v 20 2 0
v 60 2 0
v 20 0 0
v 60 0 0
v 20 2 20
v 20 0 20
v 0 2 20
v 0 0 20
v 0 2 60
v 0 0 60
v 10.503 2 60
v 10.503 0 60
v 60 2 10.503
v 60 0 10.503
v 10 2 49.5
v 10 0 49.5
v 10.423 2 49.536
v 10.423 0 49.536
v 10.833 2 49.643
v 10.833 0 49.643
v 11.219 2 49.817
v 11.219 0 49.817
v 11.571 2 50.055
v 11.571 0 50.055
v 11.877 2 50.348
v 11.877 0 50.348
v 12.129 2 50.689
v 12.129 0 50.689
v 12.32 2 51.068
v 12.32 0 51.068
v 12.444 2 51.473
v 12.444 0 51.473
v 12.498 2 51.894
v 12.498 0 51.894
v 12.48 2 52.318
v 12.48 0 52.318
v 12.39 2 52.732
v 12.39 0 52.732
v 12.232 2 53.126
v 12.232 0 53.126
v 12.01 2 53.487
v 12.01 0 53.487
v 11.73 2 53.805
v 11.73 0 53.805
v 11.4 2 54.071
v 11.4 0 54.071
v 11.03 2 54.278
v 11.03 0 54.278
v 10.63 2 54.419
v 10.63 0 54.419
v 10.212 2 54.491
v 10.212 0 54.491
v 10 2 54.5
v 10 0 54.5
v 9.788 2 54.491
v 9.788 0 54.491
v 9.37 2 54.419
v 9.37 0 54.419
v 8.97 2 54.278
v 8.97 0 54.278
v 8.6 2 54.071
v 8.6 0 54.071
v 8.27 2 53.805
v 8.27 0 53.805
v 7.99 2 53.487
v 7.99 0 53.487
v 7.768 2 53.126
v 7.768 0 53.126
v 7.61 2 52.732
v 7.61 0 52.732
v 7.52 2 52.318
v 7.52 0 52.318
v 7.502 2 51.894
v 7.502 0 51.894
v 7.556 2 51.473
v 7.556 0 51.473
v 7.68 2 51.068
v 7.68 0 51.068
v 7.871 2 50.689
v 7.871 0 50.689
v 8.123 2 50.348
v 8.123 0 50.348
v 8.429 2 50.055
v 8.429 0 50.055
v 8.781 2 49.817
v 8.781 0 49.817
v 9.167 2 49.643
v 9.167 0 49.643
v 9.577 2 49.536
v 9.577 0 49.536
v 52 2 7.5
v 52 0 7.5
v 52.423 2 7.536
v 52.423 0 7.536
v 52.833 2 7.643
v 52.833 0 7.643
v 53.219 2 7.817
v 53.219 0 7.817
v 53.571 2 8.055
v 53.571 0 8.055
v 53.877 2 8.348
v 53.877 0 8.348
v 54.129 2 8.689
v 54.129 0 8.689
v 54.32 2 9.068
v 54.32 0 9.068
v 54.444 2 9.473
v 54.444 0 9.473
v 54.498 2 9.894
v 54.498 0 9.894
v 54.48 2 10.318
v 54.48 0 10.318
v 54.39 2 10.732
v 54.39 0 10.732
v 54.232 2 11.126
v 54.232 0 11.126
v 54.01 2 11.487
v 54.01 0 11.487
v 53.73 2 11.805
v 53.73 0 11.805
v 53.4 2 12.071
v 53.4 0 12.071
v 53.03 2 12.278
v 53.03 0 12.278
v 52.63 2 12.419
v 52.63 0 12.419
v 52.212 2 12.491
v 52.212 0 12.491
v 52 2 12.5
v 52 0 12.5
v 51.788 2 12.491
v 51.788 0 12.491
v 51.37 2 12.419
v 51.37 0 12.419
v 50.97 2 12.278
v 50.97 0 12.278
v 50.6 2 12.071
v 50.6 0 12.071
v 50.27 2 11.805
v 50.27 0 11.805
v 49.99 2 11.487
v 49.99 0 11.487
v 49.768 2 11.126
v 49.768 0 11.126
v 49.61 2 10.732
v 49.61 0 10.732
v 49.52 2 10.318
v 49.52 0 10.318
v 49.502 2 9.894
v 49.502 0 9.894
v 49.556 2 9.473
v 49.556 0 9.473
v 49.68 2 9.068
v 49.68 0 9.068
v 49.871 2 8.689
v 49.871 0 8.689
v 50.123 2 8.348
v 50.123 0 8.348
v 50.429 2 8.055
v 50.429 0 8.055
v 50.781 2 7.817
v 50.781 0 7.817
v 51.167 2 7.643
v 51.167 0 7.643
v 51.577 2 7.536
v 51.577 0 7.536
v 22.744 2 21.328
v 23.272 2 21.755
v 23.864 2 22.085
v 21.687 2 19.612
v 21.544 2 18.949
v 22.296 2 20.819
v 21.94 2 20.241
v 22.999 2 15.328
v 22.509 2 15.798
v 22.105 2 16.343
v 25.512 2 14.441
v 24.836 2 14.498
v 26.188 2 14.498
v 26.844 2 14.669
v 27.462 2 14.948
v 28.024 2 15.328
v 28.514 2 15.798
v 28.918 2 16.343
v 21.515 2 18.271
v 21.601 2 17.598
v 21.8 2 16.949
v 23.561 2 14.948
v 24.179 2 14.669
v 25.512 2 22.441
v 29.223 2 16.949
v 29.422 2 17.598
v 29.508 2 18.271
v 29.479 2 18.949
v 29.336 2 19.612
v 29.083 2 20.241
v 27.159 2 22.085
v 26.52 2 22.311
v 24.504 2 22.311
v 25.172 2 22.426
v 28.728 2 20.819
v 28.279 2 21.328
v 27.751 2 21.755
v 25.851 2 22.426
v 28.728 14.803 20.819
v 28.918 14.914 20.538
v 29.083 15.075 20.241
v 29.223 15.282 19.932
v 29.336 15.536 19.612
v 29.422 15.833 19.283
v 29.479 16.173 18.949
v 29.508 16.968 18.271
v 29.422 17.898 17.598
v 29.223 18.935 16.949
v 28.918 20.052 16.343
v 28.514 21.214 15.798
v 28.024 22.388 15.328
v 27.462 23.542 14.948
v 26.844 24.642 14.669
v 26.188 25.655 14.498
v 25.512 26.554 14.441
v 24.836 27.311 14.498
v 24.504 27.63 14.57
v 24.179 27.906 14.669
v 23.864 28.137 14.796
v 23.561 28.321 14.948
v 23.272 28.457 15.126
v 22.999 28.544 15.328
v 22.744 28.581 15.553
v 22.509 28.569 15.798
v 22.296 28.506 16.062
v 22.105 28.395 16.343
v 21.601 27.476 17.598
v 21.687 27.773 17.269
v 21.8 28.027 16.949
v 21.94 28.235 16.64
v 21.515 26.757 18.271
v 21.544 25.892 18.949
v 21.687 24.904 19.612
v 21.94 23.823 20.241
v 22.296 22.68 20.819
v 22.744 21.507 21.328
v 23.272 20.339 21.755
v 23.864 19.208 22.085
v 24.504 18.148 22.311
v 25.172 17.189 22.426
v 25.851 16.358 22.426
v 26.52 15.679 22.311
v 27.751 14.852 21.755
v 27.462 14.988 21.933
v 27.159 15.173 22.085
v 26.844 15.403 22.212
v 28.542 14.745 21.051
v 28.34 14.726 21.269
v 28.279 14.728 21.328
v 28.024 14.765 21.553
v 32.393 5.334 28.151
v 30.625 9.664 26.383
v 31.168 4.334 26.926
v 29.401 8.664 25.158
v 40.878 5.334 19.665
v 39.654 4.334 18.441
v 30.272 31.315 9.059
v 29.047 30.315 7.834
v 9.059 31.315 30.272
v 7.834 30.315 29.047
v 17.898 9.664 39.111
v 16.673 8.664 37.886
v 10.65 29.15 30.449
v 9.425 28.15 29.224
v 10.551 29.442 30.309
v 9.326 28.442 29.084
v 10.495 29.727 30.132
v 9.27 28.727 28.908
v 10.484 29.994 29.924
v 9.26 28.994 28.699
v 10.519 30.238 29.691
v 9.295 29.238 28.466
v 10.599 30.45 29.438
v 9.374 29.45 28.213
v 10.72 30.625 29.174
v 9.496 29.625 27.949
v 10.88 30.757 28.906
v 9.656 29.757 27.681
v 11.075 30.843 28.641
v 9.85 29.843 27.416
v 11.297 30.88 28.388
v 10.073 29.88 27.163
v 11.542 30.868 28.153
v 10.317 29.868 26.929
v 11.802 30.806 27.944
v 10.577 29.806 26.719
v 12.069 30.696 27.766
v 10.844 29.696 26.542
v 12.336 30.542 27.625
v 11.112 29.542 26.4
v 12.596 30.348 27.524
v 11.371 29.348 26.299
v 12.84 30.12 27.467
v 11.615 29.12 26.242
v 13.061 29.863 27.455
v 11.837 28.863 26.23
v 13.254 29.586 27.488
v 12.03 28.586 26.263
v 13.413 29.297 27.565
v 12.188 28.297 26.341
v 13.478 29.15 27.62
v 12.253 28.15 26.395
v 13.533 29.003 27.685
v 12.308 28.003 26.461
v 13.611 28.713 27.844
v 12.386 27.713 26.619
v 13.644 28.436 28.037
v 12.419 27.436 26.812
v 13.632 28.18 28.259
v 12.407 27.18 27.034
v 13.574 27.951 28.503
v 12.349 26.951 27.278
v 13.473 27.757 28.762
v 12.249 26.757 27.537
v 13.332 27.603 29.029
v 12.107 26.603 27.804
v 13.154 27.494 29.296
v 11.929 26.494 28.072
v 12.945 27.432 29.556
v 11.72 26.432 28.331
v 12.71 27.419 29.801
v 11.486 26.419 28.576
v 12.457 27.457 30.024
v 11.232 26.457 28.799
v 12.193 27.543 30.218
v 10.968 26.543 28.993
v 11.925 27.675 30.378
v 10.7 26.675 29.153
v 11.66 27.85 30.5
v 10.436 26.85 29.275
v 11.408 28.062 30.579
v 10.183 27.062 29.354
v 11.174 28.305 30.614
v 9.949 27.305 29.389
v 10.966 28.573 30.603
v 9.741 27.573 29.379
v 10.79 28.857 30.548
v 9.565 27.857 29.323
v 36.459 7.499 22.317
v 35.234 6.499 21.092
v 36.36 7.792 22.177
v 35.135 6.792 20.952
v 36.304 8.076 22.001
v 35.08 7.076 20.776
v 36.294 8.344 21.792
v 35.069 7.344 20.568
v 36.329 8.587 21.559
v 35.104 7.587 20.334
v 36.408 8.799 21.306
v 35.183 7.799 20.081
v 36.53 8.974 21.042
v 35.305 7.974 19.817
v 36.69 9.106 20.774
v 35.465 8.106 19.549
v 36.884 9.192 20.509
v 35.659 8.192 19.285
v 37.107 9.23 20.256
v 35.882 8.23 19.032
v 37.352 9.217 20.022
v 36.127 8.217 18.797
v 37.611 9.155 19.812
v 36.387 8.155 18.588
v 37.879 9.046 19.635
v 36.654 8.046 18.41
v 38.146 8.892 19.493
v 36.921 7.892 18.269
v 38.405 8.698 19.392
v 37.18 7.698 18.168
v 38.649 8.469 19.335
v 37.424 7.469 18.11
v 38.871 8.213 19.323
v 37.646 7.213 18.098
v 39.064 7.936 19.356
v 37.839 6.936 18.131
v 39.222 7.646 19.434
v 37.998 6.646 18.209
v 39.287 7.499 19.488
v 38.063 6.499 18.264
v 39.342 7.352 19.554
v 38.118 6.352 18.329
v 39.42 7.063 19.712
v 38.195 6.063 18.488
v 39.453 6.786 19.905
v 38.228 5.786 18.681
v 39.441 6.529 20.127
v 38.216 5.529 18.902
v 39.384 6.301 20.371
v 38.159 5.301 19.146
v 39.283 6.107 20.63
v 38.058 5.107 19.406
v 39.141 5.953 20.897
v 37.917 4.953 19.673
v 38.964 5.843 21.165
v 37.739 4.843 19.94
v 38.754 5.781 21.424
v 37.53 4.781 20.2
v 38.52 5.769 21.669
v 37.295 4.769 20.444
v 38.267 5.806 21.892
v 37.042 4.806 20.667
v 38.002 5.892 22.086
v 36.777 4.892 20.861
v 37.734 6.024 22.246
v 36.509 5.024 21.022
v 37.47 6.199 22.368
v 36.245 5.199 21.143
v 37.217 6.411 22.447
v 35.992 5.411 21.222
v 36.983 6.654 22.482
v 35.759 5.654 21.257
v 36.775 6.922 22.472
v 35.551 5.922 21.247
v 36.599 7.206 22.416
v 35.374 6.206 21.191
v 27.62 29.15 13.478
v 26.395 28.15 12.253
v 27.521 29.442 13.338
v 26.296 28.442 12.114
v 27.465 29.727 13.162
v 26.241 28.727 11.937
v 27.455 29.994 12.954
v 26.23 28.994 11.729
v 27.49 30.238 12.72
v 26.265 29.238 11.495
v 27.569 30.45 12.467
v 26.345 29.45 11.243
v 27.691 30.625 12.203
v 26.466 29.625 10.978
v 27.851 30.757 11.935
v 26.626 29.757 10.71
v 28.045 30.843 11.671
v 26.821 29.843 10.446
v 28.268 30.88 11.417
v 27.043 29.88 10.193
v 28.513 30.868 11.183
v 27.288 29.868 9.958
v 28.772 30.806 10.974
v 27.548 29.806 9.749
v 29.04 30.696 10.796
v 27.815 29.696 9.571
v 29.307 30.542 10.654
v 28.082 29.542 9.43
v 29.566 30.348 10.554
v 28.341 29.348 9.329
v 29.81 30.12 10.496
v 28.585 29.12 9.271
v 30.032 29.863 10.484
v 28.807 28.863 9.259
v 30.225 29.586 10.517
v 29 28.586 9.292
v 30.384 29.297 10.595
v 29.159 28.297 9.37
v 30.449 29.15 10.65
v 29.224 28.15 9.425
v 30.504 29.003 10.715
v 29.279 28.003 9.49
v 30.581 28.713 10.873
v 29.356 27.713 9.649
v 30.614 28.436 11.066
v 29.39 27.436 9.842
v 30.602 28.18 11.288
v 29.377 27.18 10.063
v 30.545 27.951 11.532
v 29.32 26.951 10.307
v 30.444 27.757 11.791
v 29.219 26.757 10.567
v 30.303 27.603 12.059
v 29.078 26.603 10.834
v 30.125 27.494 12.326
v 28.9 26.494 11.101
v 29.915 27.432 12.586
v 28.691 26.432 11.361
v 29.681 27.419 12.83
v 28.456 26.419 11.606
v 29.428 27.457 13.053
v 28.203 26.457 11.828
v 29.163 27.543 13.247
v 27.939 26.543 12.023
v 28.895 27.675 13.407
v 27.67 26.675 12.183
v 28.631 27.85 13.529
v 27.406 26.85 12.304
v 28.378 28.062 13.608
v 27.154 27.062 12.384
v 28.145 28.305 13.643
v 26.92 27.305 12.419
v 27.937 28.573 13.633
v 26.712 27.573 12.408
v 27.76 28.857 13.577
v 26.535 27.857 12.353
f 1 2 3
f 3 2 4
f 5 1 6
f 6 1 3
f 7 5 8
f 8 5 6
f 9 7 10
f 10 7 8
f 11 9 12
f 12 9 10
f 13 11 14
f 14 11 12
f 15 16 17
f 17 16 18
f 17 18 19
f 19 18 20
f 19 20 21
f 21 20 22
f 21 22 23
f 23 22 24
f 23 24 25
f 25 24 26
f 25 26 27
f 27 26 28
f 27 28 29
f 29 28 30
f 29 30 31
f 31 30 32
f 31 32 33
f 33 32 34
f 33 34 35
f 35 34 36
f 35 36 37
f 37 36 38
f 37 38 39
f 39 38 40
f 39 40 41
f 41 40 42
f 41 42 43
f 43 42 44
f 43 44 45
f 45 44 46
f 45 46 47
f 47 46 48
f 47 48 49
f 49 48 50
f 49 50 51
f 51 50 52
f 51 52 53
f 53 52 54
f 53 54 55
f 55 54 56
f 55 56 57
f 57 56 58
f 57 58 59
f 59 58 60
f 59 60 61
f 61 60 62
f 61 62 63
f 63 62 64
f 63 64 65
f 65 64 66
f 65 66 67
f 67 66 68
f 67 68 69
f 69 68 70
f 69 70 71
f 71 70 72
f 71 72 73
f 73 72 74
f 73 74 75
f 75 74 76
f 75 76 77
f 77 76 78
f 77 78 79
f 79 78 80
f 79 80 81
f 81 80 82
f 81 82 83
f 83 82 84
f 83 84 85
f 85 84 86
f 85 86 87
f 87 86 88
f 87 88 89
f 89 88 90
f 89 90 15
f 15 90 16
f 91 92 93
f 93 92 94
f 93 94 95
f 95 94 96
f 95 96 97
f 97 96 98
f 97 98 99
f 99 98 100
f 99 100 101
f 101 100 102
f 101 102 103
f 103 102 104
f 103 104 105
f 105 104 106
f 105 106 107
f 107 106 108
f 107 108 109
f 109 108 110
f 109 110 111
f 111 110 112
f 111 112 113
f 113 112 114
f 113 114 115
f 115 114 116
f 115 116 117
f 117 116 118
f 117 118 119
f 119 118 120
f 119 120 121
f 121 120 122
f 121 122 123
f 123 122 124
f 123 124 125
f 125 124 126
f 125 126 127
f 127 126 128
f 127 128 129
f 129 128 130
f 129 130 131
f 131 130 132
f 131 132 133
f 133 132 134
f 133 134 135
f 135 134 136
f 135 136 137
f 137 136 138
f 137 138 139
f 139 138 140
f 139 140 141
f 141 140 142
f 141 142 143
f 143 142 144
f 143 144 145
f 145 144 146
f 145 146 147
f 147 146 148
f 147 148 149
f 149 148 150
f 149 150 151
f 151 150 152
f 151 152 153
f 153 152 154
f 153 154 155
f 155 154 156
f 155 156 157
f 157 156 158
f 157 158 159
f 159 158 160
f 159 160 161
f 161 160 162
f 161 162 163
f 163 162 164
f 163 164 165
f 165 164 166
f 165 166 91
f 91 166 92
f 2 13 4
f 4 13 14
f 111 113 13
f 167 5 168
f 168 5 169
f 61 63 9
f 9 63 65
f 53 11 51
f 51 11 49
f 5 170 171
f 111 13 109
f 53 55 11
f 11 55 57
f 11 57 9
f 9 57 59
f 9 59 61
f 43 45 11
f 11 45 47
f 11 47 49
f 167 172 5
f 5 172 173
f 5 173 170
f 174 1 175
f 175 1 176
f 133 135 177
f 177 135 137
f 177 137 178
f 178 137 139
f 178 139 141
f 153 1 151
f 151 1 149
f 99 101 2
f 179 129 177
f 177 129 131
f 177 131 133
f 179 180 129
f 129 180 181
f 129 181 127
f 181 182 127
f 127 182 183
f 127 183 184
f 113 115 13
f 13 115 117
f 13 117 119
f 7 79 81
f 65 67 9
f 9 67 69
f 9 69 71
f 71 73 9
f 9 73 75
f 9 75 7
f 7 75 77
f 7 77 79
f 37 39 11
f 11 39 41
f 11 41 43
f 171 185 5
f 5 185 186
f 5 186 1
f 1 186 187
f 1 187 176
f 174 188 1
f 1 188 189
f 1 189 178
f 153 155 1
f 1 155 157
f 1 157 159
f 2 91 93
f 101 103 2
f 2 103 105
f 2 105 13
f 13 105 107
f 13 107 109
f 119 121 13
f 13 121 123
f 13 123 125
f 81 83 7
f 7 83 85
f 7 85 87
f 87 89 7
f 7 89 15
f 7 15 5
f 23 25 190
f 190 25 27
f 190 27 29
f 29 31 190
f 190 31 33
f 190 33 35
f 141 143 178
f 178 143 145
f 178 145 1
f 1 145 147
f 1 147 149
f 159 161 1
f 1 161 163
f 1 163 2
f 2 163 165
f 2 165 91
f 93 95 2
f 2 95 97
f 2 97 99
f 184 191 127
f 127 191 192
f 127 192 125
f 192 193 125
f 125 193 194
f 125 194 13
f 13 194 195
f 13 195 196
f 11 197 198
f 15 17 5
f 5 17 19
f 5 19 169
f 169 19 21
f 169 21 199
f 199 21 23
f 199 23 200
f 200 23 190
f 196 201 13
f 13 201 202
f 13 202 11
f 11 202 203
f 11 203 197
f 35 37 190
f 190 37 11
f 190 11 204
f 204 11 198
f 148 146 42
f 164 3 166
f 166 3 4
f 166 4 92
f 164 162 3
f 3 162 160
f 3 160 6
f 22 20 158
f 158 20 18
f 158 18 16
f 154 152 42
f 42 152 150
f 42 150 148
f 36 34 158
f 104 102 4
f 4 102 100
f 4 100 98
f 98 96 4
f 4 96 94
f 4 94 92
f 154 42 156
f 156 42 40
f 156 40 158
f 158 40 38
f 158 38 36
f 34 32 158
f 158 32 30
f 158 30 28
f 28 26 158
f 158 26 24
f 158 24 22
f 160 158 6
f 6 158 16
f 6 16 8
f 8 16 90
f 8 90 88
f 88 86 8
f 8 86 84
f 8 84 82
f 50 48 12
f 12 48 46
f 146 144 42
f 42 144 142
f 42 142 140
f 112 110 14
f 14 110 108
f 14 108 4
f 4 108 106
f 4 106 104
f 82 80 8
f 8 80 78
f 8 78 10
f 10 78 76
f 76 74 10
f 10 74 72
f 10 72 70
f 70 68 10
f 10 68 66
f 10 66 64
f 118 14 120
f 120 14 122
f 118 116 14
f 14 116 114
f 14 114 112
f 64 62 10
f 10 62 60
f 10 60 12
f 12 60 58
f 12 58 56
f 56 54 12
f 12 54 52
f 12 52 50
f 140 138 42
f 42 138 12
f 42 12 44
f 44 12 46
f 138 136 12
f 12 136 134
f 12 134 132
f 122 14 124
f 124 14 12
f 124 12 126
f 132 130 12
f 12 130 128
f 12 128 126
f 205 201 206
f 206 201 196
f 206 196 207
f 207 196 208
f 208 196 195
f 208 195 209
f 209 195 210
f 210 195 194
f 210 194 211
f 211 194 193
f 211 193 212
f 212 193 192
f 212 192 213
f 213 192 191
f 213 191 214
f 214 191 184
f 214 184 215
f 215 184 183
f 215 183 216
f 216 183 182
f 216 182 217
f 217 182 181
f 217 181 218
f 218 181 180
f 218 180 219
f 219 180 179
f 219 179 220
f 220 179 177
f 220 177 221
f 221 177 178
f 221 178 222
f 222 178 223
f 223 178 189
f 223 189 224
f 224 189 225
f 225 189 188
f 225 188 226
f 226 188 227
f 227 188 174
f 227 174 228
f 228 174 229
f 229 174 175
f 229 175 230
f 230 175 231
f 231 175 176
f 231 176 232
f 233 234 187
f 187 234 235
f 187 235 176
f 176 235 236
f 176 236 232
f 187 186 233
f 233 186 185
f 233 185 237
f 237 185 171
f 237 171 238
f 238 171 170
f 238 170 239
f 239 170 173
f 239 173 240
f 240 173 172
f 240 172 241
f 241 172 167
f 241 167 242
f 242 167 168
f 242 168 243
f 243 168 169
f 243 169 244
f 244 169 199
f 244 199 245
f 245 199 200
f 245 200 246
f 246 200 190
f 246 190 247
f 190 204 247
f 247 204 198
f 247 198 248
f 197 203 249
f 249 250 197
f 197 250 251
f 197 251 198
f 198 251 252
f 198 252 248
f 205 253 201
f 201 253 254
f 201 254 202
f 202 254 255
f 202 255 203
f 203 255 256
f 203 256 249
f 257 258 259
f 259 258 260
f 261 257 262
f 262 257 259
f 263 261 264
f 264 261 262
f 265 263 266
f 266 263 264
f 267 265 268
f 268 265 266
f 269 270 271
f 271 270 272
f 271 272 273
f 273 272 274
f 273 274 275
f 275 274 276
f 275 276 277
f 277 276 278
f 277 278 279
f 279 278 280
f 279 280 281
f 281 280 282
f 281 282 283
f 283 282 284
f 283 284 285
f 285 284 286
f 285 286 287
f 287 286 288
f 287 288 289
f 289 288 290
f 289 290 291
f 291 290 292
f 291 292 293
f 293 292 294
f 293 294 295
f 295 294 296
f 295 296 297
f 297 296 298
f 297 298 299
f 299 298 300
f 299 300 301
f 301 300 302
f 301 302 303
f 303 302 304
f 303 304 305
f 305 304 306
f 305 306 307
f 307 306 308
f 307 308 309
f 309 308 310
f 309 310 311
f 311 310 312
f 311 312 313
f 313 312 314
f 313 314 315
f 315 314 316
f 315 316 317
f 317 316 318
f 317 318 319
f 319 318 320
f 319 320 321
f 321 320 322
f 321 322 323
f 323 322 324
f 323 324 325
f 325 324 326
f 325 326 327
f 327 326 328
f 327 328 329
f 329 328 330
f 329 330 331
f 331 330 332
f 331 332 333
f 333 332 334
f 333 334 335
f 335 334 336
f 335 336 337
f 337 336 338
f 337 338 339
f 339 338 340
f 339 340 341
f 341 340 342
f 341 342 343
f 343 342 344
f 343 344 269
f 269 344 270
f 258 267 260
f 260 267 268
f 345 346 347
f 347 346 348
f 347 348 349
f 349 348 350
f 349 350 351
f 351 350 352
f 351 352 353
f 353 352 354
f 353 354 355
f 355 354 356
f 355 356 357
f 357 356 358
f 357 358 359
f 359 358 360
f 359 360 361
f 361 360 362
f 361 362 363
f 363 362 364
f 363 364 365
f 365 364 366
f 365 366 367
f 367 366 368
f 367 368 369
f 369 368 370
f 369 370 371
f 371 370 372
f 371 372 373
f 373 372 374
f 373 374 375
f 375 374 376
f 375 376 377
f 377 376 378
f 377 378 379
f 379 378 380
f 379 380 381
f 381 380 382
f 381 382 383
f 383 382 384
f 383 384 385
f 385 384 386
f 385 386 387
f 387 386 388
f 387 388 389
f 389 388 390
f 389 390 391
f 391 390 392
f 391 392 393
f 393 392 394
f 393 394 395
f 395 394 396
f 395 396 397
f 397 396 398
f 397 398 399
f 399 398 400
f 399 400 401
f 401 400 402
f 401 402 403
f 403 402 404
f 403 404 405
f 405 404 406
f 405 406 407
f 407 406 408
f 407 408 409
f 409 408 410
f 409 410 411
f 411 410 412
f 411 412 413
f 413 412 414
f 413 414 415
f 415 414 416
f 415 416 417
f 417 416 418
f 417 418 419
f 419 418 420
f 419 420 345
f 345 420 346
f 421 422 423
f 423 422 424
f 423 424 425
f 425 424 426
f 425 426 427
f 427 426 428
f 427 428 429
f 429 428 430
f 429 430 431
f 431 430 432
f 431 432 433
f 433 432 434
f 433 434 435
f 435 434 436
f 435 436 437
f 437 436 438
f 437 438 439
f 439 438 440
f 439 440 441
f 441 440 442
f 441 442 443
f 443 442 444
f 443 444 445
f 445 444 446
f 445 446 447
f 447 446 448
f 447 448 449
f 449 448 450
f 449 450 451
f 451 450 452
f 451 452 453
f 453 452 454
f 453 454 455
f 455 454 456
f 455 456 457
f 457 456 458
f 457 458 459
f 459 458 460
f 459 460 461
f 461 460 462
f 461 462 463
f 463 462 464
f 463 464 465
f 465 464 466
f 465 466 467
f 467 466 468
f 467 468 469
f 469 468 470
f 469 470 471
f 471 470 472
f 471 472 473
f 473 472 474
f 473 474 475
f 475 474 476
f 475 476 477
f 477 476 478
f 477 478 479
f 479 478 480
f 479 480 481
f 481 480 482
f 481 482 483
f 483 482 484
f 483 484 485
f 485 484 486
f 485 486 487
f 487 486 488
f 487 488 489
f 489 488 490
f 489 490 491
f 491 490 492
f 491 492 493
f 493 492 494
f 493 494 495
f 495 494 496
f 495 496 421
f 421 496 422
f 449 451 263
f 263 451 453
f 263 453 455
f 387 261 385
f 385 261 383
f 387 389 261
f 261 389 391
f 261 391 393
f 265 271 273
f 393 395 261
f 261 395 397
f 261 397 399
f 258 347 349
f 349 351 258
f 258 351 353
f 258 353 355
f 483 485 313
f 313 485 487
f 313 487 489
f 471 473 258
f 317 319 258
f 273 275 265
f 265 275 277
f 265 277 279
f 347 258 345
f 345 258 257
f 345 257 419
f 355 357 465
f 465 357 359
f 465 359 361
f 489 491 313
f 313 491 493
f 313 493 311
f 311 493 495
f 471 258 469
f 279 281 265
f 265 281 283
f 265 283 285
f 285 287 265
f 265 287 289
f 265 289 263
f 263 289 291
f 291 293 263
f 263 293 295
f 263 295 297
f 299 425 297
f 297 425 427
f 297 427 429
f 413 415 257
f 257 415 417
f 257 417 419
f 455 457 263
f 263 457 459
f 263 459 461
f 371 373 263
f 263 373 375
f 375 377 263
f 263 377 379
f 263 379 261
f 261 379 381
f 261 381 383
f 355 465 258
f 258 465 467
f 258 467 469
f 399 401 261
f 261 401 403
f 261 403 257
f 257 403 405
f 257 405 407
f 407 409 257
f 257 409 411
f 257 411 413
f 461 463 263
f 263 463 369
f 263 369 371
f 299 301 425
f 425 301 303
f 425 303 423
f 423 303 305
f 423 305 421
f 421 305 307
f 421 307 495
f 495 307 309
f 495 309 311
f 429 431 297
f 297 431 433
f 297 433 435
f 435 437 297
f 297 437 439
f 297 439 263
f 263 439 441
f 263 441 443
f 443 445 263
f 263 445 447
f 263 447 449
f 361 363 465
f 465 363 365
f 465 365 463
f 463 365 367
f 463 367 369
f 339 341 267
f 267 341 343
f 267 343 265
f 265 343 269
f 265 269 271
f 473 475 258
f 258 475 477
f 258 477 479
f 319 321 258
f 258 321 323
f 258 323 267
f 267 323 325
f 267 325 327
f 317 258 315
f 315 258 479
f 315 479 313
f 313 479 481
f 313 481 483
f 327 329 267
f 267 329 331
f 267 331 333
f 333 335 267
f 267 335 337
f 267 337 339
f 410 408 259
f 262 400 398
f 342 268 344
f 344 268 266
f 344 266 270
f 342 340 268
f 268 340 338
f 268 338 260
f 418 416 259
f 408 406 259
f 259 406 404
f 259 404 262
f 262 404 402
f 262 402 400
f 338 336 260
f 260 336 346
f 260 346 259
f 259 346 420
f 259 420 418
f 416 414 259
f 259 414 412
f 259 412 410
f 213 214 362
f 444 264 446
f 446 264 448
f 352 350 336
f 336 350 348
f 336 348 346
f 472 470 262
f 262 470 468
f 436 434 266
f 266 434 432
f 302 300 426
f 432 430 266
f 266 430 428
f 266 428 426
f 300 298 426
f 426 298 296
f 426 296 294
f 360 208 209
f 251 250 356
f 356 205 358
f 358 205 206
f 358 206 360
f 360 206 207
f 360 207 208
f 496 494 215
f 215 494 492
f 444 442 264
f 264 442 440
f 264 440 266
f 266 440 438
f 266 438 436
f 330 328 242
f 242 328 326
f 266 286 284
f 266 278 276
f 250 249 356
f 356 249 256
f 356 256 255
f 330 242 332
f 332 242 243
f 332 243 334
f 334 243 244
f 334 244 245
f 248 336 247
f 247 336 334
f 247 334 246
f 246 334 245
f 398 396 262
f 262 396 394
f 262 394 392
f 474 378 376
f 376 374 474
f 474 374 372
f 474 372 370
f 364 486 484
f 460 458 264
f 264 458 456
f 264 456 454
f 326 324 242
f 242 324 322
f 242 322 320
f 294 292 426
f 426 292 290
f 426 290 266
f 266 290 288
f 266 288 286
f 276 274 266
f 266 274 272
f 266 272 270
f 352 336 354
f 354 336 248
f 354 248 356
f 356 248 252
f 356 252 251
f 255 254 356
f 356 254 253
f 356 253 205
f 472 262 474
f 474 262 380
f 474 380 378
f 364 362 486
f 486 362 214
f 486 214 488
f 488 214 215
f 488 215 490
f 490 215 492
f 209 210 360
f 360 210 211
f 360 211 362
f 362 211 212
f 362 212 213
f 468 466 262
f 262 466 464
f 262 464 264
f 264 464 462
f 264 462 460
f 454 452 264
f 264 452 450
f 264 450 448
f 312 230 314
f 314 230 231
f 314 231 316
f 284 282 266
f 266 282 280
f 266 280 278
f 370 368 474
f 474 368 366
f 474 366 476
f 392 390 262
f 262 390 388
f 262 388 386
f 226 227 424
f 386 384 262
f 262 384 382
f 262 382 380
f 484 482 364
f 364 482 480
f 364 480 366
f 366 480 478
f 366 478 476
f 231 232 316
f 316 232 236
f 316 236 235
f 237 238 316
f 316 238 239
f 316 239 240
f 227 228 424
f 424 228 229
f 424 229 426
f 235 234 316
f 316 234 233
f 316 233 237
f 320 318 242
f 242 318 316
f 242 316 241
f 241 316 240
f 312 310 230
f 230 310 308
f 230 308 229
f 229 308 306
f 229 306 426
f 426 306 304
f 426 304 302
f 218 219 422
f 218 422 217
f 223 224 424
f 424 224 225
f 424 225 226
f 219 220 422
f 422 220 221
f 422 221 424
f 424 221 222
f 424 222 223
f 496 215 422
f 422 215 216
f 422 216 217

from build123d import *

# Parameters (mm, degrees)
SKETCH_1_R      = 2.5
EXTRUDE_1_DEPTH = 2
SKETCH_2_R      = 2
EXTRUDE_3_DEPTH = 2
EXTRUDE_4_REACH = 91.774
SKETCH_4_R      = 4


with BuildPart() as part:
    # 草图1 → 凸台-拉伸1 (new body)
    with BuildSketch(Plane(origin=(0, 0, 0), x_dir=(1, 0, 0), z_dir=(0, 1, 0))):
        Polygon((10.502525317, -60), (60, -10.502525317), (60, 0), (20, 0), (20, -20), (0, -20), (0, -60), align=None)
        with Locations(Location((10, -52, 0), (0, 0, 270))):
            Circle(SKETCH_1_R, mode=Mode.SUBTRACT)
        with Locations(Location((52, -10, 0), (0, 0, 270))):
            Circle(SKETCH_1_R, mode=Mode.SUBTRACT)
    extrude(amount=EXTRUDE_1_DEPTH)



with BuildPart() as body_2:
    # 草图2 → 凸台-拉伸3 (new body)
    with BuildSketch(Plane(origin=(23.112372436, 18.871173071, 23.112372436), x_dir=(-0.7071067811865475, 0, 0.7071067811865477), z_dir=(0.6123724356957955, 0.4999999999999981, 0.6123724356957954))):
        Polygon((-3, 16.786030205), (-15, 16.786030205), (-15, -13.213969795), (15, -13.213969795), (15, 11.786030205), (-3, 11.786030205), align=None)
        with Locations(Location((-12, -10.713969795, 0), (0, 0, 180))):
            Circle(SKETCH_2_R, mode=Mode.SUBTRACT)
        with Locations(Location((12, -10.713969795, 0), (0, 0, 180))):
            Circle(SKETCH_2_R, mode=Mode.SUBTRACT)
        with Locations(Location((-12, 14.286030205, 0), (0, 0, 180))):
            Circle(SKETCH_2_R, mode=Mode.SUBTRACT)
    extrude(amount=EXTRUDE_3_DEPTH)


with BuildPart() as part_1:
    add(part.part)

    add(body_2.part)  # 凸台-拉伸4 merges body 2
    # 凸台-拉伸4: up to this plane
    extrude_4_end = Plane(origin=(23.112372436, 18.871173071, 23.112372436), z_dir=(0.6123724356957954, 0.4999999999999981, 0.6123724356957952))
    # 草图4 → 凸台-拉伸4 (add, up to the surface)
    with BuildSketch(Plane(origin=(0, 2, 0), x_dir=(1, 0, 0), z_dir=(0, 1, 0)), mode=Mode.PRIVATE) as extrude_4_sk1:
        with Locations(Location((25.511596423, -18.440528611, 0), (0, 0, 315))):
            Circle(SKETCH_4_R)
    extrude_4_tool1 = split(extrude(extrude_4_sk1.sketch, amount=EXTRUDE_4_REACH, mode=Mode.PRIVATE), bisect_by=extrude_4_end, keep=Keep.BOTH, mode=Mode.PRIVATE)
    add(extrude_4_tool1.solids().sort_by_distance((25.511596, 2, 18.440529))[0])


solid = part_1.part
